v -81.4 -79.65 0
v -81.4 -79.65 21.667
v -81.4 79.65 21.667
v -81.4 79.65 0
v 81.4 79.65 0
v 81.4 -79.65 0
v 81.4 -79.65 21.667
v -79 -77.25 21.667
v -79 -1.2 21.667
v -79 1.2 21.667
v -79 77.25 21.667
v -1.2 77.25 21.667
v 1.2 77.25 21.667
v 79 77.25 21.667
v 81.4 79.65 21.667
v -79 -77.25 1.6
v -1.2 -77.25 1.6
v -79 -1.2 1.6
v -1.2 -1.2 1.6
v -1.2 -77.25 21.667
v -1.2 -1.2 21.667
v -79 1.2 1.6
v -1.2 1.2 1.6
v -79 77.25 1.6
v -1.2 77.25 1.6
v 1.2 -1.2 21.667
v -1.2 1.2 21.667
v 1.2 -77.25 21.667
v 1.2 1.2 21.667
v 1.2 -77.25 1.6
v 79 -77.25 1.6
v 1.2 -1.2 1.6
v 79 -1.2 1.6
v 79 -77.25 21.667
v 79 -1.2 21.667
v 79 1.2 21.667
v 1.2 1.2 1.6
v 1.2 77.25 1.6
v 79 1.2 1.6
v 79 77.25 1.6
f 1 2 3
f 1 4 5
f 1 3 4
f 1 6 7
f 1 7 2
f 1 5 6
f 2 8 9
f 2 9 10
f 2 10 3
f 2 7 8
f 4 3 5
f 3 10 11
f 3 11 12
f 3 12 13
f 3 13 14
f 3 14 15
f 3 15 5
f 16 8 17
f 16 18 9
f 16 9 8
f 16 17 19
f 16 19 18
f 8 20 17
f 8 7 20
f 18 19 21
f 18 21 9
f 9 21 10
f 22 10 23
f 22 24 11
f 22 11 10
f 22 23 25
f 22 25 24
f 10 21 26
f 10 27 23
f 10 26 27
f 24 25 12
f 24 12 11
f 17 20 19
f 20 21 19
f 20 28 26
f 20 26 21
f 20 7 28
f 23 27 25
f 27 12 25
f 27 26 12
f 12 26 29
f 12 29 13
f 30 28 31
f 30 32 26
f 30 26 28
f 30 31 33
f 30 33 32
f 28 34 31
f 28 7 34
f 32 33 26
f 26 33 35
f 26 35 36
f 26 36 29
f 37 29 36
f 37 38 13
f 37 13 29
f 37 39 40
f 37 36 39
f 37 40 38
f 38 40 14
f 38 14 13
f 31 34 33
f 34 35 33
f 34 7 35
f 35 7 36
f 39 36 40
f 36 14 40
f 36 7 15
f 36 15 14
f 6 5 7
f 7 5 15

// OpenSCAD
// Start: lazy_union
default_5_default_5();
// End: lazy_union

// Modules.

// 'PartMaterial undef-default - default 5.0'
module default_5_default_5() {
  // 'None : _combine_solids_and_holes'
  union() {
    // '_combine_solids_and_holes'
    difference() {
      // 'larger_holes : _combine_solids_and_holes'
      union() {
        // 'box'
        multmatrix(m=[[1.0, 0.0, 0.0, -81.4], [0.0, 1.0, 0.0, -79.65], [0.0, 0.0, 1.0, 0.0], [0.0, 0.0, 0.0, 1.0]]) {
          // 'box : _combine_solids_and_holes'
          union() {
            // 'box'
            cube(size=[162.8, 159.3, 21.666666666666668]);
          }
        }
      }
      // 'larger_holes'
      multmatrix(m=[[1.0, 0.0, 0.0, -79.0], [0.0, 1.0, 0.0, 1.2000000000000028], [0.0, 0.0, 1.0, 1.6], [0.0, 0.0, 0.0, 1.0]]) {
        // "('hole', 0, 0) : _combine_solids_and_holes"
        union() {
          // ('hole', 0, 0)
          cube(size=[77.8, 76.05, 20.076666666666668]);
        }
      }
      // 'larger_holes'
      multmatrix(m=[[1.0, 0.0, 0.0, -79.0], [0.0, 1.0, 0.0, -77.25], [0.0, 0.0, 1.0, 1.6], [0.0, 0.0, 0.0, 1.0]]) {
        // "('hole', 0, 1) : _combine_solids_and_holes"
        union() {
          // ('hole', 0, 1)
          cube(size=[77.8, 76.05, 20.076666666666668]);
        }
      }
      // 'larger_holes'
      multmatrix(m=[[1.0, 0.0, 0.0, 1.2000000000000028], [0.0, 1.0, 0.0, 1.2000000000000028], [0.0, 0.0, 1.0, 1.6], [0.0, 0.0, 0.0, 1.0]]) {
        // "('hole', 1, 0) : _combine_solids_and_holes"
        union() {
          // ('hole', 1, 0)
          cube(size=[77.8, 76.05, 20.076666666666668]);
        }
      }
      // 'larger_holes'
      multmatrix(m=[[1.0, 0.0, 0.0, 1.2000000000000028], [0.0, 1.0, 0.0, -77.25], [0.0, 0.0, 1.0, 1.6], [0.0, 0.0, 0.0, 1.0]]) {
        // "('hole', 1, 1) : _combine_solids_and_holes"
        union() {
          // ('hole', 1, 1)
          cube(size=[77.8, 76.05, 20.076666666666668]);
        }
      }
    }
  }
} // end module default_5_default_5
